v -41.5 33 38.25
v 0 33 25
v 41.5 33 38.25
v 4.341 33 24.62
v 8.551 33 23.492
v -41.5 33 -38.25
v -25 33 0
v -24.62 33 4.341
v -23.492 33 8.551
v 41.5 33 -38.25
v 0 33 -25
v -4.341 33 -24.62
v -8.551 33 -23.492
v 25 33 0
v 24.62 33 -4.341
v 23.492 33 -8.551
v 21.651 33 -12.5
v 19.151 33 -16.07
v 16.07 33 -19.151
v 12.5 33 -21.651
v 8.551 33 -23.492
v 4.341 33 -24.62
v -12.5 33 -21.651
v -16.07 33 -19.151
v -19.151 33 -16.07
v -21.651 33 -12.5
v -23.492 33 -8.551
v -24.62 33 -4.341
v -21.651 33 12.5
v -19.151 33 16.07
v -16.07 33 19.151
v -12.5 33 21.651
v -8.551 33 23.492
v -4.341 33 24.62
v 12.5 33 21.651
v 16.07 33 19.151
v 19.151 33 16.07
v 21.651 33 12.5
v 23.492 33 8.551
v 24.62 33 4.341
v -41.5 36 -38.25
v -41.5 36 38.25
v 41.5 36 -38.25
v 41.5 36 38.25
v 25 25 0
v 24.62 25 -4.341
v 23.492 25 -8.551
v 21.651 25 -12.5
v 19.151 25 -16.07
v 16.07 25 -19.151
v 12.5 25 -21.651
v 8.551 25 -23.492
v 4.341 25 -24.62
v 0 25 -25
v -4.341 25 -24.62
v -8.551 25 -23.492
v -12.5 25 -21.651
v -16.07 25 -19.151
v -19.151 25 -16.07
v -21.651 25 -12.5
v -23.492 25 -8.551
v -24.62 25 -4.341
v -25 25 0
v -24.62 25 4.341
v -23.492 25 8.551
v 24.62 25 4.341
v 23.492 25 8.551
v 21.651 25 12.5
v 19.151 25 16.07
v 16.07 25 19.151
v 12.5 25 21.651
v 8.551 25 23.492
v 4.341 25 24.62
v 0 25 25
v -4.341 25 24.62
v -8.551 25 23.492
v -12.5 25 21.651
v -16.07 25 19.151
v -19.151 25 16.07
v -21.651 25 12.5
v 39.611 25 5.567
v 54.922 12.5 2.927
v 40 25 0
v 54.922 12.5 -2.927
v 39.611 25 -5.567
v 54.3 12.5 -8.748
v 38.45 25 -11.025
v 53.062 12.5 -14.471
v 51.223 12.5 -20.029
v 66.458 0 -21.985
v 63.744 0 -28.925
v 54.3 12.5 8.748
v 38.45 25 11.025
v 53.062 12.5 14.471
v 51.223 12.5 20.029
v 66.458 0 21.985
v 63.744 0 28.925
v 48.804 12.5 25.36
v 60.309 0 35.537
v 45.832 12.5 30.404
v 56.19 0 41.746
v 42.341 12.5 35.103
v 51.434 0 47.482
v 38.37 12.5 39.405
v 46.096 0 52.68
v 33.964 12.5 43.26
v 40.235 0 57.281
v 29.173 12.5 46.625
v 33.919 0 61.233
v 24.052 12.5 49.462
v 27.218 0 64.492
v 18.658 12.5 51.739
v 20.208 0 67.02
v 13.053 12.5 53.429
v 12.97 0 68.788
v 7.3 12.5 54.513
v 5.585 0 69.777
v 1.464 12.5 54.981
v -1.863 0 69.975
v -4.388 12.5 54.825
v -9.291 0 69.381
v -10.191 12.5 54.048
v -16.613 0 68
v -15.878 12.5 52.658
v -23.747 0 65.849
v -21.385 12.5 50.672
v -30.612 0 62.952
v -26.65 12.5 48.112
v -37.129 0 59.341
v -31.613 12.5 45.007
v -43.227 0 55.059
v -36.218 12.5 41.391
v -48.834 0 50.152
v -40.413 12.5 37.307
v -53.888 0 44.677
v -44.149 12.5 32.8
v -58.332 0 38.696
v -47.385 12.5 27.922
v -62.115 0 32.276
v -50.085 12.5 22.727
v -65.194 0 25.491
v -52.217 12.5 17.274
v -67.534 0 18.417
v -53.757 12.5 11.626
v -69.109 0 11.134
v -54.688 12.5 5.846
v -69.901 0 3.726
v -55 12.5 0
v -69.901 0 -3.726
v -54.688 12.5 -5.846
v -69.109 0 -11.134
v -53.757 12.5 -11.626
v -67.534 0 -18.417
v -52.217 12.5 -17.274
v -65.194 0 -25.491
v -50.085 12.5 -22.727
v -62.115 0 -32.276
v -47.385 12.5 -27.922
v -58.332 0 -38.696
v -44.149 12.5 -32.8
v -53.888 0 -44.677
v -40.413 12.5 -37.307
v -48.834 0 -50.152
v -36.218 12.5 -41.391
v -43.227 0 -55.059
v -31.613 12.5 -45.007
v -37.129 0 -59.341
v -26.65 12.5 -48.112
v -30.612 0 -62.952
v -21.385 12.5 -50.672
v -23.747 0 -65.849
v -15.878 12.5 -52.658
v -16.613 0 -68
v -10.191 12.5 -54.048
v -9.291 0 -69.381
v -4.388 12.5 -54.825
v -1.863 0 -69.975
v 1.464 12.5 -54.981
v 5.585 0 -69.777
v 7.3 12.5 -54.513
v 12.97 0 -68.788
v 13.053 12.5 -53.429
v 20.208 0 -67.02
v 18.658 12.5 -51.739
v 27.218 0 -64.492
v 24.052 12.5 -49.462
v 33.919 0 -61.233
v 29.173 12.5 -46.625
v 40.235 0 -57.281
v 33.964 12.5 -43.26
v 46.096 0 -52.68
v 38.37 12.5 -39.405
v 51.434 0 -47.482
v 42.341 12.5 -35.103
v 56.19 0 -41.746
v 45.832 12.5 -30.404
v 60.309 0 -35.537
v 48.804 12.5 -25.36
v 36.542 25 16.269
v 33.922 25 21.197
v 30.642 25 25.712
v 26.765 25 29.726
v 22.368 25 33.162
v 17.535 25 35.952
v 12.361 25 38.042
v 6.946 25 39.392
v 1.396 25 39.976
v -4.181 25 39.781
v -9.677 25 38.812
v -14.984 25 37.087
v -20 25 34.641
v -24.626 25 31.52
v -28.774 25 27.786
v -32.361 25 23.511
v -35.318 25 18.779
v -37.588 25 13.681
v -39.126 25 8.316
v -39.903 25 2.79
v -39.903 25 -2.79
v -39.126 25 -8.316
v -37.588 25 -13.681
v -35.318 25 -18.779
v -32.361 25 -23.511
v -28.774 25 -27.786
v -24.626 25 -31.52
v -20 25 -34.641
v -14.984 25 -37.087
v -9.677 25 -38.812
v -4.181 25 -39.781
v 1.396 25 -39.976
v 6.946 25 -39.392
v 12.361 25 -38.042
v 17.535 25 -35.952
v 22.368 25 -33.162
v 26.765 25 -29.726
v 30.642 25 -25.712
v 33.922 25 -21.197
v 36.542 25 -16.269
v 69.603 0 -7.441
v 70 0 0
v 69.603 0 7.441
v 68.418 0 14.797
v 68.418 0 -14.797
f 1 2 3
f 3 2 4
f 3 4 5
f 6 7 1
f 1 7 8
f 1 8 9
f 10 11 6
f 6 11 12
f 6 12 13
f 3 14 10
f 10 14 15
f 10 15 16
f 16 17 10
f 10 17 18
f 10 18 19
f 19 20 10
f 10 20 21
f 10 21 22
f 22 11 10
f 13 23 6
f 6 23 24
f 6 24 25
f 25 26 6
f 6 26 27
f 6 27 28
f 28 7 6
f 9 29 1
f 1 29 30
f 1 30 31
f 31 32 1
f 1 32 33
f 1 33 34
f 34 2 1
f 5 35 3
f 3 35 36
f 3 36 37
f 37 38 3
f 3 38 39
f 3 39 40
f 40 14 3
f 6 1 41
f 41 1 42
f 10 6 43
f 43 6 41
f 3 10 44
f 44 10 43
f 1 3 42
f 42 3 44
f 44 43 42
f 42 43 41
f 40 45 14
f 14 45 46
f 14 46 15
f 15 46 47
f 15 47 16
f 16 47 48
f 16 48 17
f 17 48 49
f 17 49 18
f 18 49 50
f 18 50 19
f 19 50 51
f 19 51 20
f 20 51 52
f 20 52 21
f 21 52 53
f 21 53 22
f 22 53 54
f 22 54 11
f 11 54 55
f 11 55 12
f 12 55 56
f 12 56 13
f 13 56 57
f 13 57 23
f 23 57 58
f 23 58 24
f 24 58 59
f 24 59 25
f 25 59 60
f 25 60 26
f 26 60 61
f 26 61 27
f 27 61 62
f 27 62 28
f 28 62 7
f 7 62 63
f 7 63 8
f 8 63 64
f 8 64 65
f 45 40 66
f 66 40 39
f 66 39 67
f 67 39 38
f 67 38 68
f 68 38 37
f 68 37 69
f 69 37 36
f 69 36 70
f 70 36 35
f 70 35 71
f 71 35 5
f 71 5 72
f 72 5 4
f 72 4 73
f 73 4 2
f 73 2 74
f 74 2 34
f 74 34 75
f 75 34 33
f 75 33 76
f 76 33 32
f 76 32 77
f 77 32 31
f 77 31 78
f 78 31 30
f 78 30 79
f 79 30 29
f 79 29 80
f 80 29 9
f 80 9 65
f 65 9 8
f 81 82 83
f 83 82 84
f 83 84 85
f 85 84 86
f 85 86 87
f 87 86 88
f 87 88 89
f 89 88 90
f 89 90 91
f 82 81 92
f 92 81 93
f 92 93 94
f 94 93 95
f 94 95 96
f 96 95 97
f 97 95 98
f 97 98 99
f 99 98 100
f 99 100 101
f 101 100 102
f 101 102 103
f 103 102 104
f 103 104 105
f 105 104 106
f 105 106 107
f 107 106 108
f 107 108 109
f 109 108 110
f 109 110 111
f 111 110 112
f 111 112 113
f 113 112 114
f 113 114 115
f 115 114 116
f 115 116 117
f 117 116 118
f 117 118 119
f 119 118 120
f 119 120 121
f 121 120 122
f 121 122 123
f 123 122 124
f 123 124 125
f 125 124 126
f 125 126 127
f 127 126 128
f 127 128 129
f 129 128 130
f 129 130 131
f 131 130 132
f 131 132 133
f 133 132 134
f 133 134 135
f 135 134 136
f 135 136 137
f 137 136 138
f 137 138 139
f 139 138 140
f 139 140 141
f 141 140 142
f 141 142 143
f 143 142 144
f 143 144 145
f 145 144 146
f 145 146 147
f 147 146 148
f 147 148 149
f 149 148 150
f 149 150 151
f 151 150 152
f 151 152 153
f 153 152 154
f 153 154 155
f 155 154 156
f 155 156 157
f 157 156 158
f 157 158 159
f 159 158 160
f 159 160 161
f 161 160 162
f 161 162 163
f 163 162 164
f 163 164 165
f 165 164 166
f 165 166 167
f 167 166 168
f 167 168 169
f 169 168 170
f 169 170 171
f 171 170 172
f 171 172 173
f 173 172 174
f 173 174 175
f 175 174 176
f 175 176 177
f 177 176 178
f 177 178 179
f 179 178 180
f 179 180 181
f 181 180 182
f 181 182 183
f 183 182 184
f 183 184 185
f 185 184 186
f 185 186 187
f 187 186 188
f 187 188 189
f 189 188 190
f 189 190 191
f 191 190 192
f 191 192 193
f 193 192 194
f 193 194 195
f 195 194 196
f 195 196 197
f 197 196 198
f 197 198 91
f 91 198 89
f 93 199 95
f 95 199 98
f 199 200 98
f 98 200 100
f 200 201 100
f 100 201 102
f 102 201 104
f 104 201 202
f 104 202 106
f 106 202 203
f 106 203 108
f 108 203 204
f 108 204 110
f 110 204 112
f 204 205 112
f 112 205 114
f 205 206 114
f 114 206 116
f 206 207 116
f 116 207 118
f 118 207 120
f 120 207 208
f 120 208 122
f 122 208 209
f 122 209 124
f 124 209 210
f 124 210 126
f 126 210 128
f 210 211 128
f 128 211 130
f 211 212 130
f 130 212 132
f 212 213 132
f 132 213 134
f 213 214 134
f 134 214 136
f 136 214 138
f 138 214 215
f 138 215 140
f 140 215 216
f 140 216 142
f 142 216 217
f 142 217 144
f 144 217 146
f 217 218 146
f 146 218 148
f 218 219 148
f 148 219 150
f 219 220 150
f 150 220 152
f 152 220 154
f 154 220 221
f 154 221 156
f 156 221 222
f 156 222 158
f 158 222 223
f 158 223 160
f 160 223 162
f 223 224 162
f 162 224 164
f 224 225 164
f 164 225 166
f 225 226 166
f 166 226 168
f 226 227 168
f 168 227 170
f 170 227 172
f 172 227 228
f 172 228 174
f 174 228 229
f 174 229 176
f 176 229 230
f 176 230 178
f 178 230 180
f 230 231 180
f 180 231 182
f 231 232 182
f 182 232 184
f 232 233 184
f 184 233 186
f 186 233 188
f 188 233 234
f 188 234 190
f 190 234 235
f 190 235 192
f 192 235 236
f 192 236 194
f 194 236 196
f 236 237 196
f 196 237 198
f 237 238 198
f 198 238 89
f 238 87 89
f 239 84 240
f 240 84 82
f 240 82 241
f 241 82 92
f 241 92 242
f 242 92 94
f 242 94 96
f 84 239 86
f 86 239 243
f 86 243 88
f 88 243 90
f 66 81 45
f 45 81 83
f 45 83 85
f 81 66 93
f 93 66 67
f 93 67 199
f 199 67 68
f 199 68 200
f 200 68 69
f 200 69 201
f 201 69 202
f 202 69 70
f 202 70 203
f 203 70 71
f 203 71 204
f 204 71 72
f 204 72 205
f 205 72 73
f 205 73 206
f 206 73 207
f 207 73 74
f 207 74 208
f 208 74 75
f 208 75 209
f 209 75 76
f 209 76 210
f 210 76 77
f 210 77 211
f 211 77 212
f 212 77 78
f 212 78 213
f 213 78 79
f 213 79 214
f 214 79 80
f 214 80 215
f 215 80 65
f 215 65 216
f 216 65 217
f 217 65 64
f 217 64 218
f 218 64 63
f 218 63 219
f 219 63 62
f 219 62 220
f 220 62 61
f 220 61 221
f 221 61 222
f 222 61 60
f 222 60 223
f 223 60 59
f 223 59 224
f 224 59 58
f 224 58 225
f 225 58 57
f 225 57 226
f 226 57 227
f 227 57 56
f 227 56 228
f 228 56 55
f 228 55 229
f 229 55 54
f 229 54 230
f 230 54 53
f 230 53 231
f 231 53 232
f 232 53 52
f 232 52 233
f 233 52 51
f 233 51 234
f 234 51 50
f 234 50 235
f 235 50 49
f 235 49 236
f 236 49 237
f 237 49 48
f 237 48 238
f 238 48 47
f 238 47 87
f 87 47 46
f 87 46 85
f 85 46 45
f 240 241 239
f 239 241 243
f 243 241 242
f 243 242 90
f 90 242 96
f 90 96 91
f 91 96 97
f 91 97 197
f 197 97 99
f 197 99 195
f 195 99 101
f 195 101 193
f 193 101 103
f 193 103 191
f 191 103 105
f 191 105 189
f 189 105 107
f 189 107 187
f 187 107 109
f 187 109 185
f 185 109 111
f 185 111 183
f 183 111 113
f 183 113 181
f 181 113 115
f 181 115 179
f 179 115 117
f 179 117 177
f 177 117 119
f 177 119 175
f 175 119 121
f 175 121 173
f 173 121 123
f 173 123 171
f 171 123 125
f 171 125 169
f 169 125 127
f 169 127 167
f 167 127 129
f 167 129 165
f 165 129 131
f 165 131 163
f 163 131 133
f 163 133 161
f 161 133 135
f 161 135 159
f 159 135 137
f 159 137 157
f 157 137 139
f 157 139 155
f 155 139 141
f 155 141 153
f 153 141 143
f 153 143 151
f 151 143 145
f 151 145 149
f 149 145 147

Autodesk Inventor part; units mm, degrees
ref_plane "YZ Plane" through (0, 0, 0) normal (1, 0, 0) x (0, 1, 0)
ref_plane "XZ Plane" through (0, 0, 0) normal (0, 1, 0) x (-1, 0, 0)
ref_plane "XY Plane" through (0, 0, 0) normal (0, 0, 1) x (1, 0, 0)
sketch "Sketch2" plane through (0, 0, 0) normal (0, 0, 1) x (1, 0, 0)
  line L0 (0, 0) -> (70, 0)
  line L1 (0, 0) -> (0, 25)
  line L2 (0, 25) -> (40, 25)
  line L3 (40, 25) -> (70, 0)
  dimension "d0" = 70
  dimension "d1" = 25
  dimension "d2" = 40
revolve "Revolution1" add sketch "Sketch2" angle 360 about axis through (0, 0, 0) along (0, 1, 0)
sketch "Sketch3" plane through (0, 25, 0) normal (0, 1, 0) x (1, 0, 0)
  circle A0 centre (0, 0) radius 25
  dimension "d4" = 50
extrude "Extrusion1" add sketch "Sketch3" along normal blind 8
sketch "Sketch4" plane through (0, 33, 0) normal (0, 1, 0) x (1, 0, 0)
  line L0 (-41.5, 38.25) -> (41.5, 38.25)
  line L1 (41.5, 38.25) -> (41.5, -38.25)
  line L2 (41.5, -38.25) -> (-41.5, -38.25)
  line L3 (-41.5, -38.25) -> (-41.5, 38.25)
  point P0 (0, 0)
  point P1 (0, -38.25)
  point P2 (-41.5, 0)
  dimension "d7" = 83
  dimension "d8" = 76.5
extrude "Extrusion2" add sketch "Sketch4" along normal blind 3
properties part number "Pomodoro Robot Base"
